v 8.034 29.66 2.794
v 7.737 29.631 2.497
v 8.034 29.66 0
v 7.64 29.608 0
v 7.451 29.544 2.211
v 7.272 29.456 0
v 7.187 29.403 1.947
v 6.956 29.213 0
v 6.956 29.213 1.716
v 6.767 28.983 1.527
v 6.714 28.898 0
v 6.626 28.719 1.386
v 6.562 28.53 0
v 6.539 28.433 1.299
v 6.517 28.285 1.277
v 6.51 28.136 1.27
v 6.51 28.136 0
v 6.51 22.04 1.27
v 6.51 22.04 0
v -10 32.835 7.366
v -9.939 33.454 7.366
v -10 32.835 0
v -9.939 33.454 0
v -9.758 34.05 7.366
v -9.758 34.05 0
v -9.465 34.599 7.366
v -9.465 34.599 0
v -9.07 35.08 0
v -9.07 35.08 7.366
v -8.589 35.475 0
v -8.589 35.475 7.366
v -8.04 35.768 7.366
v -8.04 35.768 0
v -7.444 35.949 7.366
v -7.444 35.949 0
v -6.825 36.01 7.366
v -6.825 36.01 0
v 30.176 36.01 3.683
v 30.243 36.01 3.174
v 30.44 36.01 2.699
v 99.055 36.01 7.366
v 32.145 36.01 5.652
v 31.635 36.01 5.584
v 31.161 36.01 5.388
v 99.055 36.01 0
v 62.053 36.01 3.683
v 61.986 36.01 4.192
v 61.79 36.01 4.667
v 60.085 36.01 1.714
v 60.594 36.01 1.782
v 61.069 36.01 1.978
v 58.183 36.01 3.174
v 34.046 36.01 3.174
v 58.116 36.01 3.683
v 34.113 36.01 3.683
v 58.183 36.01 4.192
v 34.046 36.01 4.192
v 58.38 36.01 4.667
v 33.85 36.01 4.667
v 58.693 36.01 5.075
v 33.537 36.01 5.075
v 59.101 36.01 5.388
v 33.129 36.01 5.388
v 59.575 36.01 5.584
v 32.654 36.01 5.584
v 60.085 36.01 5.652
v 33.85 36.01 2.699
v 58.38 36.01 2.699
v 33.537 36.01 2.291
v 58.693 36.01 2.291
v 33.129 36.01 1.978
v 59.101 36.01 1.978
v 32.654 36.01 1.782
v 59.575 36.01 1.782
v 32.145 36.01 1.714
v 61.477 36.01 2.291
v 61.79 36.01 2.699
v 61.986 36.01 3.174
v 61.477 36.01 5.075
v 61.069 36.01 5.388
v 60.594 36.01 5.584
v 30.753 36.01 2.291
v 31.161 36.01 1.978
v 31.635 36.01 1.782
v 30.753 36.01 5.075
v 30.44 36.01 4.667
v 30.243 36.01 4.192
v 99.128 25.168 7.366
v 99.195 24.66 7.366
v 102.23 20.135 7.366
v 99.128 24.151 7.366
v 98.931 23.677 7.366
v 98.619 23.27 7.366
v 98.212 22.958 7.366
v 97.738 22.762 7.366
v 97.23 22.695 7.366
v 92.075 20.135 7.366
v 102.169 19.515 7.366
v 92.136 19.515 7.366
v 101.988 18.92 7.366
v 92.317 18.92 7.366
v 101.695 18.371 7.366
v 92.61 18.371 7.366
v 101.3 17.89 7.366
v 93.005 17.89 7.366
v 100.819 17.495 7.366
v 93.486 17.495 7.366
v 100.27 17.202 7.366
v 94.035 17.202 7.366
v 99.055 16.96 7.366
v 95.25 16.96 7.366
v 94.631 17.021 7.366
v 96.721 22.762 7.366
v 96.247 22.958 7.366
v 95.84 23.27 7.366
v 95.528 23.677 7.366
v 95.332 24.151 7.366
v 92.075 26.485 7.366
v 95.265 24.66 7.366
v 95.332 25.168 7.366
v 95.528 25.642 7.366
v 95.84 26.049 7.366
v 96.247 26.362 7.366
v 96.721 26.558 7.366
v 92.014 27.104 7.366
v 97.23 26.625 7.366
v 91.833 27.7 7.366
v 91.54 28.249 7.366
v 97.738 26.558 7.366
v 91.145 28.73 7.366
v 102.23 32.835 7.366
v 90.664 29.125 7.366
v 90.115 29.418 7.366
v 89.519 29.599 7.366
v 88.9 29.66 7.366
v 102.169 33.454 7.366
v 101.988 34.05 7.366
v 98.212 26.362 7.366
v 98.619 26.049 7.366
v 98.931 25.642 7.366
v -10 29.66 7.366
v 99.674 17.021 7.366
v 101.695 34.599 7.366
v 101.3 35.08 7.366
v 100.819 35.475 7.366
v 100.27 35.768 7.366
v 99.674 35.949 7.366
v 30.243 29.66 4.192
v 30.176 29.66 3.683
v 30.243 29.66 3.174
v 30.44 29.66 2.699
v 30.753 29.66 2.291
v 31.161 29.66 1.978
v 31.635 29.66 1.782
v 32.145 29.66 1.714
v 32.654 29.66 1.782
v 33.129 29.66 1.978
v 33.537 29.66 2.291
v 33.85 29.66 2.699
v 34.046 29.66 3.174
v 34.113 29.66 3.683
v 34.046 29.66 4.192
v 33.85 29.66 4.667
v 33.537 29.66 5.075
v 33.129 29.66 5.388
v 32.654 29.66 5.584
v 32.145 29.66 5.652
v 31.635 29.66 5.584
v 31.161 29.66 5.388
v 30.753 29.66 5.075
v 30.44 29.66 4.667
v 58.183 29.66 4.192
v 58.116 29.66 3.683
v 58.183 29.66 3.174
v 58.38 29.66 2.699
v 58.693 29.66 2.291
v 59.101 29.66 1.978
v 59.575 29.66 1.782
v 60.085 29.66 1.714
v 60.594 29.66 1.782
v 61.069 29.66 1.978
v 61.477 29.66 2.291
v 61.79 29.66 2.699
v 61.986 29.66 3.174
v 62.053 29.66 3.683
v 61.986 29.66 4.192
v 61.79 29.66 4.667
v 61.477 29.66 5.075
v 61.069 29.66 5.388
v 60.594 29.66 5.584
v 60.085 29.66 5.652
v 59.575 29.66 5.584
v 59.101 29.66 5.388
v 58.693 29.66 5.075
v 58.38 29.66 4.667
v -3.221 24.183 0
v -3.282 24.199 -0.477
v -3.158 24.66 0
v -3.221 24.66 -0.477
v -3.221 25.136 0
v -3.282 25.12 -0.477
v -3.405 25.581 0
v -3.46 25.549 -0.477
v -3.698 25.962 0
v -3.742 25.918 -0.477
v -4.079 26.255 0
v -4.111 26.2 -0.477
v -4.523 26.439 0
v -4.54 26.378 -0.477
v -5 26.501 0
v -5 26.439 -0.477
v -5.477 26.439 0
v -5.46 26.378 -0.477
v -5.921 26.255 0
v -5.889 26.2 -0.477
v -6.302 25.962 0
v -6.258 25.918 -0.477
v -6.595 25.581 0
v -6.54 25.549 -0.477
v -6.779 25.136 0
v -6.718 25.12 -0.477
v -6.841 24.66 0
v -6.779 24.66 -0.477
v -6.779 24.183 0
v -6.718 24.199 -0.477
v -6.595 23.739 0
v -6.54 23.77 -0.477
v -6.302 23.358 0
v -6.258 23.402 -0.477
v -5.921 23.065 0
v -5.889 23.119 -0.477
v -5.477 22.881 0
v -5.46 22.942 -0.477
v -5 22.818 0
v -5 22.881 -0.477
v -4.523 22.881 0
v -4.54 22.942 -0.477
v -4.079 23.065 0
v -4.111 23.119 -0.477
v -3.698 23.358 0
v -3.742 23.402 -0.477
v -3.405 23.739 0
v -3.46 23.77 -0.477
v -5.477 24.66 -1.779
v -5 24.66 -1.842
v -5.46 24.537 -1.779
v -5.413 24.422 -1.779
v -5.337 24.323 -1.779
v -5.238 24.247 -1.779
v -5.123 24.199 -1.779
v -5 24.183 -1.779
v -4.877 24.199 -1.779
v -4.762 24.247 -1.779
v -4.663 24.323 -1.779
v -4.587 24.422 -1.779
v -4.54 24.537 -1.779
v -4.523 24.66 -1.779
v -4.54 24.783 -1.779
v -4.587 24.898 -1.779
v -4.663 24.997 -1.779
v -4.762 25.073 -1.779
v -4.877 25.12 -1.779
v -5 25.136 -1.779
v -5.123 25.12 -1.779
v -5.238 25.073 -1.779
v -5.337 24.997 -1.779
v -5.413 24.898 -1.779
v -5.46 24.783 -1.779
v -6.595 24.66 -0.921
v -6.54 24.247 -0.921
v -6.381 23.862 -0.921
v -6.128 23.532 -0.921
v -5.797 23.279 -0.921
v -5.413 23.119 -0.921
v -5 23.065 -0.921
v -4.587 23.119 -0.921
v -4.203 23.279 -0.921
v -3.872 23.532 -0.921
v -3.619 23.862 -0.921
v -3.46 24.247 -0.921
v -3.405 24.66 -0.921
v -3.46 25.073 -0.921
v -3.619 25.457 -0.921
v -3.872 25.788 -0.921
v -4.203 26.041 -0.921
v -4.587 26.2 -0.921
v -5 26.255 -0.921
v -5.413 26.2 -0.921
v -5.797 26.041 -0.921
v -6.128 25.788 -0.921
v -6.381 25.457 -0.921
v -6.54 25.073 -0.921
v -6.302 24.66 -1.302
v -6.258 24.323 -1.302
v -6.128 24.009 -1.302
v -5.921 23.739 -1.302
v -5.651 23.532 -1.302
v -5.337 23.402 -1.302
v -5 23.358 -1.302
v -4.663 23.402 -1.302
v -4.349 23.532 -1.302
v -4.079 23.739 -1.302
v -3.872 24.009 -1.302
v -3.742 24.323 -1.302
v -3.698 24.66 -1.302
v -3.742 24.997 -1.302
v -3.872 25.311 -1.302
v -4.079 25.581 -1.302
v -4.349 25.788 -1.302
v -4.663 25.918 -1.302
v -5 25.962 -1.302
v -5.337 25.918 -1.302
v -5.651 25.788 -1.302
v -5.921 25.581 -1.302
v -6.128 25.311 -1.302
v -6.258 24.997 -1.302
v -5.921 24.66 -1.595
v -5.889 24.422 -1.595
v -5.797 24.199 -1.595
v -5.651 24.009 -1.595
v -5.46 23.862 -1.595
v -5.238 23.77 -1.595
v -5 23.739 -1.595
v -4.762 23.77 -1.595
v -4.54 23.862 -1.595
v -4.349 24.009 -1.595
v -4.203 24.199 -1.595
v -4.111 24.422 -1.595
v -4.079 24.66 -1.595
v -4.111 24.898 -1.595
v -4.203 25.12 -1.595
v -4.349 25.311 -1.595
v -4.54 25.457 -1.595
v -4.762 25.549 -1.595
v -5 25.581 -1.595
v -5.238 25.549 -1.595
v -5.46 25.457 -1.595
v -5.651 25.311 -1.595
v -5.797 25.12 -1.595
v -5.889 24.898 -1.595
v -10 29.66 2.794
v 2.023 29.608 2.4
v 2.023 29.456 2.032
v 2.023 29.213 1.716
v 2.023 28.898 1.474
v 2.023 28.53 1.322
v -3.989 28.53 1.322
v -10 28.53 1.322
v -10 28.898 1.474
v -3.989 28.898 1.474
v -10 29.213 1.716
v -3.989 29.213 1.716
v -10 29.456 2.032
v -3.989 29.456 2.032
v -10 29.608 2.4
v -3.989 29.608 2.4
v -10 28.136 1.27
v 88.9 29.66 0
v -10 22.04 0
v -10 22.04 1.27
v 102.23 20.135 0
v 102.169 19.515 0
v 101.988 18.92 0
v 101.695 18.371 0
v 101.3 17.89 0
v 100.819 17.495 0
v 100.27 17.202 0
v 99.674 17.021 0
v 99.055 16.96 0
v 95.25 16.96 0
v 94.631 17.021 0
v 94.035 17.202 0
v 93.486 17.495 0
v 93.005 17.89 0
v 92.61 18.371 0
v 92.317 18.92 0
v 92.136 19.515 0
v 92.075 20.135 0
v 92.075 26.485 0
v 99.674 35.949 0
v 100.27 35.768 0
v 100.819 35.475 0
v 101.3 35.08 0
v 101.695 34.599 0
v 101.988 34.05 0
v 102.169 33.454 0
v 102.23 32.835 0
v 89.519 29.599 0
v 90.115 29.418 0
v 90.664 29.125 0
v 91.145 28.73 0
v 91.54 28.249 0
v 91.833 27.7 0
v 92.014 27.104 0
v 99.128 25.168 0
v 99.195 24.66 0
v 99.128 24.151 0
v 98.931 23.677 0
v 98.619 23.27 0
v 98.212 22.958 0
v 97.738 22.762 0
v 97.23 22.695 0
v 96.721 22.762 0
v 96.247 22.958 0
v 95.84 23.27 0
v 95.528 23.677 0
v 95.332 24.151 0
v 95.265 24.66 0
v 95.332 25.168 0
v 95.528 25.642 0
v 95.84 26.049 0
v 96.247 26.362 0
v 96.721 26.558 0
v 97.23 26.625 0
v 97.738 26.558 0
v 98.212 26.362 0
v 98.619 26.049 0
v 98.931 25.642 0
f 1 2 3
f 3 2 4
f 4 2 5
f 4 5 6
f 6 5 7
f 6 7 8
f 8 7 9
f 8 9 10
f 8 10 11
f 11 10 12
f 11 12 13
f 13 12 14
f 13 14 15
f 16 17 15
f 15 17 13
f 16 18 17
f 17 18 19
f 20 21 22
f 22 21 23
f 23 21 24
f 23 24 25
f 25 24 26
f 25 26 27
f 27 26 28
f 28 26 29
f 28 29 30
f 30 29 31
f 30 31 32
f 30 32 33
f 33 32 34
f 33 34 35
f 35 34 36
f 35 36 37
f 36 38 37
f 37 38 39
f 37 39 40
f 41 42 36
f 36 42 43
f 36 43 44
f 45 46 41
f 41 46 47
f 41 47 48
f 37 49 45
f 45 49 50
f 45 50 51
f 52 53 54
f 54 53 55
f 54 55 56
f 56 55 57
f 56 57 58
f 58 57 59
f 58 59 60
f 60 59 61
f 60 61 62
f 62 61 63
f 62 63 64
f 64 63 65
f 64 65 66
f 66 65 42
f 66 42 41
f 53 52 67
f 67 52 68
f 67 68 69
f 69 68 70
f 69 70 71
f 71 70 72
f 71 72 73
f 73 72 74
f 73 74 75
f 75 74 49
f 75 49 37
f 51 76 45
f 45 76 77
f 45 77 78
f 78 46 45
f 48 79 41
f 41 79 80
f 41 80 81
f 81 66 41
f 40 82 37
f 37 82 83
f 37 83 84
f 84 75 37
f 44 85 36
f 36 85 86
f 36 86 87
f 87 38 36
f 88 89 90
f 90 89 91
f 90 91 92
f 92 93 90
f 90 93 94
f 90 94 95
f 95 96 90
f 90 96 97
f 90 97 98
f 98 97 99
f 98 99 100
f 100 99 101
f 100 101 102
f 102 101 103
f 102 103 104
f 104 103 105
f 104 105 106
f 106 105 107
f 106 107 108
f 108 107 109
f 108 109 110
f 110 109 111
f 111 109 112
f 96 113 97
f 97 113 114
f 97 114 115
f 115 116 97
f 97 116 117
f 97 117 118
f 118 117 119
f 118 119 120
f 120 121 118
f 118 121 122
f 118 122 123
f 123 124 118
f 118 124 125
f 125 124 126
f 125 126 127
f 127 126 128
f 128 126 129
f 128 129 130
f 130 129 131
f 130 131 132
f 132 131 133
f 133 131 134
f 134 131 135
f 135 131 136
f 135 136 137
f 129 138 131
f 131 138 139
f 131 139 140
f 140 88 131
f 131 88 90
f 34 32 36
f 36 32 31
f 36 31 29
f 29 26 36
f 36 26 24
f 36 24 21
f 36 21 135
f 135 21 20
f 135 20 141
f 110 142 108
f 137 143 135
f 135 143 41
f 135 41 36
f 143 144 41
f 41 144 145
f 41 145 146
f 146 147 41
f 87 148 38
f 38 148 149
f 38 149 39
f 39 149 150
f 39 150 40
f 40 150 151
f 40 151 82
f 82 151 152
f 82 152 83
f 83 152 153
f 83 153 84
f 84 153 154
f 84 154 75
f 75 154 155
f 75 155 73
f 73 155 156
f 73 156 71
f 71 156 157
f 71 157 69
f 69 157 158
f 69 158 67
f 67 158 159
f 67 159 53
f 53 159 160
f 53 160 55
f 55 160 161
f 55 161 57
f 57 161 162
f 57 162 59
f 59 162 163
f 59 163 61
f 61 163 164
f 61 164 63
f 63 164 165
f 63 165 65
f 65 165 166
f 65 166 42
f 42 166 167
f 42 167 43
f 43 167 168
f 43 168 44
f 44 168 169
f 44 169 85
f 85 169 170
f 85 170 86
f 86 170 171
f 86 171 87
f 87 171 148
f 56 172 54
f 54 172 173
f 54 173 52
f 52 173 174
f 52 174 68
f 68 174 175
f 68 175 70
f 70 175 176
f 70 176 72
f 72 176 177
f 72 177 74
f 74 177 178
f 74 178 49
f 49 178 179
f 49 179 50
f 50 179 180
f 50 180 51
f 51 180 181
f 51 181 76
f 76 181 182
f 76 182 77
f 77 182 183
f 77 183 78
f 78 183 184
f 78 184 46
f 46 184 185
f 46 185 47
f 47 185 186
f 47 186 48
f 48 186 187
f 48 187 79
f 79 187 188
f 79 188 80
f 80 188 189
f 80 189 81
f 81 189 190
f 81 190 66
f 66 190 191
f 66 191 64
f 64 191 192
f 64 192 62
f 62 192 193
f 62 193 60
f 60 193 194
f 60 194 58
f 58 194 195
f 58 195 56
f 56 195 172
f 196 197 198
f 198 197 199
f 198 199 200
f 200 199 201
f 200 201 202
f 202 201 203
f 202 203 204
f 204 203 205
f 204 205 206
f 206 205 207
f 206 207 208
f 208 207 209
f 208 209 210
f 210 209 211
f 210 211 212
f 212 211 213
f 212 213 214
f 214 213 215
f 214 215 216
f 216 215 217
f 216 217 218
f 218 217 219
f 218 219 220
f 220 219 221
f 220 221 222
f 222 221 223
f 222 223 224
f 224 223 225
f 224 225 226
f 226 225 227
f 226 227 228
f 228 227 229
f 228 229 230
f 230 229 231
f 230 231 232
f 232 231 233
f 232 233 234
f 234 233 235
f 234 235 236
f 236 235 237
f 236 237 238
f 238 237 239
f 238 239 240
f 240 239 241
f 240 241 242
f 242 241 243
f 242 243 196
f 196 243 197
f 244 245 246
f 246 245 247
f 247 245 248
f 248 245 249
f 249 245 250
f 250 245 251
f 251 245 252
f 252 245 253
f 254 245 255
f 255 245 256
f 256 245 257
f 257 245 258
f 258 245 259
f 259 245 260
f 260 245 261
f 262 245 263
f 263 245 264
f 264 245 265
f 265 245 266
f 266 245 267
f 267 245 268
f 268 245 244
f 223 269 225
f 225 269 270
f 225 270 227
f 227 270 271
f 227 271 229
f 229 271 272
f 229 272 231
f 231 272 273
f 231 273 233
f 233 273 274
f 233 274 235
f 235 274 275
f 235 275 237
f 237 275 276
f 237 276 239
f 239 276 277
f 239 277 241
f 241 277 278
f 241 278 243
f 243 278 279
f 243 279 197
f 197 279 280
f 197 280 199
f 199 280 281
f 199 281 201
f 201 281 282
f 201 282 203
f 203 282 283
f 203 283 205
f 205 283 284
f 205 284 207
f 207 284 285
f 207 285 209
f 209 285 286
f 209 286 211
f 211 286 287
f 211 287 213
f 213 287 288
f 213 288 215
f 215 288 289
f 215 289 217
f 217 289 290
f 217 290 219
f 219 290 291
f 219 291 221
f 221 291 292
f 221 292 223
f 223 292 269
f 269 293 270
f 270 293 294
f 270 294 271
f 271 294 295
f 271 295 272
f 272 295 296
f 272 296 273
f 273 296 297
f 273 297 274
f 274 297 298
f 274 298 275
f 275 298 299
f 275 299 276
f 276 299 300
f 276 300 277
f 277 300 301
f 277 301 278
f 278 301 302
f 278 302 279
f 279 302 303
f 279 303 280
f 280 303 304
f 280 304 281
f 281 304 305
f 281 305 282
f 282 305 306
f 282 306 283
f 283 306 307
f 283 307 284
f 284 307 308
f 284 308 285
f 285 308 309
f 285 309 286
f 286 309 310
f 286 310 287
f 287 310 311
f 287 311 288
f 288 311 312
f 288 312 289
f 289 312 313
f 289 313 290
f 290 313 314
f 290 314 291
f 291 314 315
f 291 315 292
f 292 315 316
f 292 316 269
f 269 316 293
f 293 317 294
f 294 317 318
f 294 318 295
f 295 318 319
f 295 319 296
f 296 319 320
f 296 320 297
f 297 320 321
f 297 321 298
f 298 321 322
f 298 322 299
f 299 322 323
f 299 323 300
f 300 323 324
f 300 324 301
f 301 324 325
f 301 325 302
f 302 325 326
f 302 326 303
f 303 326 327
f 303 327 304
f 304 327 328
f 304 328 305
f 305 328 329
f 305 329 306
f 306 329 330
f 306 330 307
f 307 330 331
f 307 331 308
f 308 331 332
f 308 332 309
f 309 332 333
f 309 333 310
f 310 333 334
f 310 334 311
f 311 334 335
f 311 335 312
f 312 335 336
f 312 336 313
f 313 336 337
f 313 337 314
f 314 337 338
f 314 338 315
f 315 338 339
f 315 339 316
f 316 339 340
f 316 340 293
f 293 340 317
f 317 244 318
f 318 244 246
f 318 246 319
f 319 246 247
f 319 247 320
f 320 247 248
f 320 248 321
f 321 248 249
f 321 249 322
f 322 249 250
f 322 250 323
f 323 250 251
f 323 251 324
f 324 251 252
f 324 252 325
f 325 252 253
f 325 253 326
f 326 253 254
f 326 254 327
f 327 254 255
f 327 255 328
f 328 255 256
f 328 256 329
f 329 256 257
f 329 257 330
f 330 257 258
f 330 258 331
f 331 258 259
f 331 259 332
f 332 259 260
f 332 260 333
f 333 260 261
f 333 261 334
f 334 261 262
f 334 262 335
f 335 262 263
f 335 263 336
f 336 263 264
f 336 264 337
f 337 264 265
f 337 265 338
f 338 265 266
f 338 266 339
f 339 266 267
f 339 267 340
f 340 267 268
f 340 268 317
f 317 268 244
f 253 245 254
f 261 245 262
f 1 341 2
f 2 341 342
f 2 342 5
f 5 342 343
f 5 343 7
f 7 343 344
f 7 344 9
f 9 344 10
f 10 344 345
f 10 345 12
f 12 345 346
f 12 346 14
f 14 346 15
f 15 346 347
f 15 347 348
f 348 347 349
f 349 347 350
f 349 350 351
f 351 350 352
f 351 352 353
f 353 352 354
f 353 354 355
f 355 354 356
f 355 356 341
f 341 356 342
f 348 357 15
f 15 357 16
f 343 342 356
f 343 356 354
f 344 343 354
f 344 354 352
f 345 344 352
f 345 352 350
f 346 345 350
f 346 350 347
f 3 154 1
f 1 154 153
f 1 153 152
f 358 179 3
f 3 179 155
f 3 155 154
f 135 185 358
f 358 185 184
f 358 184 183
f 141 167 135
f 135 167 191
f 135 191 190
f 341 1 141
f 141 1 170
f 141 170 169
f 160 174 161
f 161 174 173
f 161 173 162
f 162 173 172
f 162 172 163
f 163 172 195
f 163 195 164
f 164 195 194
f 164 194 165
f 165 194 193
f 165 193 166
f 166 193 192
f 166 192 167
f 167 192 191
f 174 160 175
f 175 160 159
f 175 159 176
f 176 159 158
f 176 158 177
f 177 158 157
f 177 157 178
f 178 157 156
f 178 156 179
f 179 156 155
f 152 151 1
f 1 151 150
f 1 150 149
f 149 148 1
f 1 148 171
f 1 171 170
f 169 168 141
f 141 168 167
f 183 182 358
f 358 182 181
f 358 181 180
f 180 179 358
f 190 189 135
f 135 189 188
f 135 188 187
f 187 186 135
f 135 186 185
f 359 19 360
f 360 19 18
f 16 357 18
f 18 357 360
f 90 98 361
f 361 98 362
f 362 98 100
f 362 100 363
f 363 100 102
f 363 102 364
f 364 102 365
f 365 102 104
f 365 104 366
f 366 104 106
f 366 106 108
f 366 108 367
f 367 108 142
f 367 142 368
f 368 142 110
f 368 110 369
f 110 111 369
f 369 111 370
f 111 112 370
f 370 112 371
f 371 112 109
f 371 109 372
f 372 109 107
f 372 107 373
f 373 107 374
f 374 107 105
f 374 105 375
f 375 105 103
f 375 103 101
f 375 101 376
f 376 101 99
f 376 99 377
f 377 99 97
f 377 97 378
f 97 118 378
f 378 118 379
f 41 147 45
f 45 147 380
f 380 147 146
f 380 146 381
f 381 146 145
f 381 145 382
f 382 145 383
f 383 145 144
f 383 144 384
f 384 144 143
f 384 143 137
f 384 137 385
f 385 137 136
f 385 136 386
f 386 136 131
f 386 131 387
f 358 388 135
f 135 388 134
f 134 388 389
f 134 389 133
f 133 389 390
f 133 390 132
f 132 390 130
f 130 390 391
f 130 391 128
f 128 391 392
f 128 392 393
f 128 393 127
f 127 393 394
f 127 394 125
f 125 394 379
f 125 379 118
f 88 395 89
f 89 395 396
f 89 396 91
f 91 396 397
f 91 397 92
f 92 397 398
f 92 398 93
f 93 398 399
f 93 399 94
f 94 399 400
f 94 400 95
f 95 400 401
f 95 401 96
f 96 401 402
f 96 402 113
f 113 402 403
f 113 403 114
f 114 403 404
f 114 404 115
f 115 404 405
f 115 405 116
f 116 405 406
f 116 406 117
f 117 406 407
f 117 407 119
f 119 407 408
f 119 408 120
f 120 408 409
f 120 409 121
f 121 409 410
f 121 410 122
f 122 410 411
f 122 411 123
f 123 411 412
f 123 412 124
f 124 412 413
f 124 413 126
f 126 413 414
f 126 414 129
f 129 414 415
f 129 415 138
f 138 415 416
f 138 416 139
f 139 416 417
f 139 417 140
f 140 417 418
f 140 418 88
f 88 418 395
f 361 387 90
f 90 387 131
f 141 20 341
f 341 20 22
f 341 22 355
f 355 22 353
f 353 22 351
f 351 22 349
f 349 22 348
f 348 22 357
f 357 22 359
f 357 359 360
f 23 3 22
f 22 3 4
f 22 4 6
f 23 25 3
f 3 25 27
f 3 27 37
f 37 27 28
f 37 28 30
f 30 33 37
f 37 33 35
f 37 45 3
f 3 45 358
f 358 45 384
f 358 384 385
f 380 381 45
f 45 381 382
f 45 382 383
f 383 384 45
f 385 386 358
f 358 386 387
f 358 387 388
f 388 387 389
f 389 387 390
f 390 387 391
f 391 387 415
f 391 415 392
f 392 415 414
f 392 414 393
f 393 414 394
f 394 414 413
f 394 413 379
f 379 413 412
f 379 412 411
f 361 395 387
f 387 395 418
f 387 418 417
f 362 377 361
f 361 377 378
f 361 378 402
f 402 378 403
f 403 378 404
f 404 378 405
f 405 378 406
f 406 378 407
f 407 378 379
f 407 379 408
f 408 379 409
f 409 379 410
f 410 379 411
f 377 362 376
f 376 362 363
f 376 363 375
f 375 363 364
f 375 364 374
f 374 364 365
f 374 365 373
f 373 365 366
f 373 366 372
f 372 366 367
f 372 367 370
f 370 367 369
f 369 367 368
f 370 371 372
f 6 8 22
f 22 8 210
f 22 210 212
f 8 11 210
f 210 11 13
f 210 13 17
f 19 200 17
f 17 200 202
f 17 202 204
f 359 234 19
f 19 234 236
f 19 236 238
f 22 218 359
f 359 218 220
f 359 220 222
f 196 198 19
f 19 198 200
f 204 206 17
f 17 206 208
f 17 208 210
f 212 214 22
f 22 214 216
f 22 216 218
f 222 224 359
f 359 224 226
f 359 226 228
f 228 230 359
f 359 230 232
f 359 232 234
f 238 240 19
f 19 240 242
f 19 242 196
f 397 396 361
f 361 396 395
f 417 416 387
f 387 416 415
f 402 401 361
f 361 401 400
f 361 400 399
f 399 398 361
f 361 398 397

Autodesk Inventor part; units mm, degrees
ref_plane "YZ Plane" through (0, 0, 0) normal (1, 0, 0) x (0, 1, 0)
ref_plane "Work Plane1" through (65.1649, 36.0099, -59.025) normal (0, 0, -1) x (0, -1, 0)
ref_plane "Work Plane2" through (0, 0, 0) normal (0, 0, 1) x (1, 0, 0)
sketch "Sketch1" plane through (0, 0, 0) normal (0, 0, 1) x (1, 0, 0)
  line L0 (27.0649, 36.0099) -> (65.1649, 36.0099) construction
  line L1 (-10, 0) -> (-10, 27.6599) construction
  line L2 (102.2297, 27.6599) -> (102.2297, 0) construction
  line L3 (89.2297, 29.6599) -> (100.2297, 29.6599) construction
  line L4 (-10, 36.0099) -> (102.2297, 36.0099)
  line L5 (102.2297, 36.0099) -> (102.2297, 29.6599)
  line L6 (92.075, 29.6599) -> (-10, 29.6599)
  line L7 (-10, 29.6599) -> (-10, 36.0099)
  line L8 (92.075, 29.6599) -> (92.075, 16.9599)
  line L9 (92.075, 16.9599) -> (102.2297, 16.9599)
  line L10 (102.2297, 16.9599) -> (102.2297, 29.6599)
  circle A0 centre (97.2297, 24.6599) radius 1.965 projected
  circle A1 centre (97.2297, 24.6599) radius 1.965 construction
  point P0 (0, 0)
extrude "Extrusion1" add sketch "Sketch1" along normal blind 7.366
fillet "Fillet1" radius 3.175 4 edges at (92.075, 29.6599, 3.683) (102.2297, 36.0099, 3.683) (92.075, 16.9599, 3.683) (102.2297, 16.9599, 3.683)
sketch "Sketch2" plane through (0, 0, 0) normal (0, 0, -1) x (-1, 0, 0)
  line L0 (10, 0) -> (10, 27.6599) construction
  line L1 (-88.9, 29.6599) -> (10, 29.6599) projected
  line L2 (10, 29.6599) -> (-6.51, 29.6599)
  line L3 (-6.51, 29.6599) -> (-6.51, 22.0399)
  line L4 (-6.51, 22.0399) -> (10, 22.0399)
  line L5 (10, 22.0399) -> (10, 29.6599)
  point P0 (0, 0)
  dimension "d4" = 16.51
  dimension "d5" = 7.62
extrude "Extrusion2" add sketch "Sketch2" against normal blind 1.27
fillet "Fillet2" radius 1.524 1 edges at (-1.745, 29.6599, 1.27)
sketch "Sketch3" plane through (0, 0, 0) normal (0, 0, -1) x (-1, 0, 0)
  circle A0 centre (5, 24.6599) radius 1.965 construction
  arc A1 (6.8415, 24.6599) -> (3.1585, 24.6599) centre (5, 24.6599) ccw
  line L0 (3.1585, 24.6599) -> (6.8415, 24.6599)
  point P0 (0, 0)
  dimension "d9" = 3.683
revolve "Revolution1" add sketch "Sketch3" angle 180 about axis through (-3.1585, 24.6599, 0) along (-1, 0, 0)
sketch "Sketch4" plane through (-10, 29.6599, 7.366) normal (0, -1, 0) x (1, 0, 0)
  line L0 (37.0649, -133.32) -> (37.0649, 0.03) construction
  line L1 (75.1649, 0.03) -> (75.1649, -133.32) construction
  line L2 (0, 0) -> (98.9, 0) construction
  line L3 (109.0547, 0) -> (0, 0) construction
  line L4 (37.0649, 0) -> (37.0649, -7.366) construction
  line L5 (0, -7.366) -> (109.0547, -7.366) construction
  line L6 (75.1649, 0) -> (75.1649, -7.366) construction
  line L7 (37.0649, -3.683) -> (75.1649, -3.683) construction
  point P0 (10, -7.366)
  point P1 (42.1449, -3.683)
  point P2 (70.0849, -3.683)
  dimension "d11" = 5.08
  dimension "d12" = 5.08
hole "Hole1" at (32.1449, 29.6599, 3.683) at (60.0849, 29.6599, 3.683) direction (0, 1, 0) diameter 3.937 end through all
fillet "Fillet3" radius 3.175 1 edges at (-10, 36.0099, 3.683)
fillet "Fillet4" radius 1.524 1 edges at (6.51, 29.6599, 1.397)
properties part number "PhoneMountRightRib"
